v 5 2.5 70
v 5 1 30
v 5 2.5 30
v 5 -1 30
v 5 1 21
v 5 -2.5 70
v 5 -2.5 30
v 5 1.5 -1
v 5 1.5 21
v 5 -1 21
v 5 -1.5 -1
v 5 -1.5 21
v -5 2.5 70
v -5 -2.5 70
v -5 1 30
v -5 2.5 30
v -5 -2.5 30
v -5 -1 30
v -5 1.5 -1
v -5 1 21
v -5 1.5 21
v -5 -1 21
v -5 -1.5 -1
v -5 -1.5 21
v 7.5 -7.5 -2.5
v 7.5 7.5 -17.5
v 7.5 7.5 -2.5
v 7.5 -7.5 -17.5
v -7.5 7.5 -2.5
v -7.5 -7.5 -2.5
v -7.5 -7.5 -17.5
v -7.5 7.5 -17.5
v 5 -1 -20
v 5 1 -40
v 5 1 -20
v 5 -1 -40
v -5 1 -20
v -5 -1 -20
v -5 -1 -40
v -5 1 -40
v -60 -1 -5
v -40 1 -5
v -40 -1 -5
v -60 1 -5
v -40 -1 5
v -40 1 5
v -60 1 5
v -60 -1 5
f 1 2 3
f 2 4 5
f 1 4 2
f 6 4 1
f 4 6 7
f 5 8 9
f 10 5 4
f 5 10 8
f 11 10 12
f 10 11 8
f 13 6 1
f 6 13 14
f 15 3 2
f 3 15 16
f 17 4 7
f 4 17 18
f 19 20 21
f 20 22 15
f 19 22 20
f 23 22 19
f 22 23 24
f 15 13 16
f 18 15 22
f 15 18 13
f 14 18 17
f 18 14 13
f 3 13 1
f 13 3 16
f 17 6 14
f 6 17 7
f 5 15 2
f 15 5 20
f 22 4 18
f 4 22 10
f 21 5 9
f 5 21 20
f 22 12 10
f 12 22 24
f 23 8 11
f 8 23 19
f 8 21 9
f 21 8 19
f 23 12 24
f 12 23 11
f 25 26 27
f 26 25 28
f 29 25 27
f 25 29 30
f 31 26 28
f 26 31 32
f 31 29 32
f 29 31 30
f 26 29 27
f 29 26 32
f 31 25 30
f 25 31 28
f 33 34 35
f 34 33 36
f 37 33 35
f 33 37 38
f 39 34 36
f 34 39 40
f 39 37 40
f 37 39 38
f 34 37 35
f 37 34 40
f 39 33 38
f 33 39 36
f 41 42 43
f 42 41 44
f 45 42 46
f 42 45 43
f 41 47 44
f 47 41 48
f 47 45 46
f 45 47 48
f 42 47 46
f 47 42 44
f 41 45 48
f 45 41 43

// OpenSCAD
// Define dimensions for each component
module elongated_block() {
    cube([10, 5, 40], center = true); // Increased thickness
}

module rectangular_block_4() {
    cube([10, 2, 25], center = true); // Adjusted elongation
}

module rectangular_block_3() {
    cube([10, 3, 22], center = true); // Adjusted thickness
}

module cube_1() {
    cube([15, 15, 15], center = true); // Increased size
}

module rectangular_block_2() {
    cube([10, 2, 20], center = true);
}

module rectangular_block_1() {
    cube([10, 2, 20], center = true); // Adjusted thickness and elongation
}

// Assemble the model based on the positional relationship
module flexible_coupling() {
    // Layer 1: elongated_block
    translate([0, 0, 50]) elongated_block(); // Lowered position
    
    // Layer 2: rectangular_block_4
    translate([0, 0, 30]) rectangular_block_4(); // Adjusted position
    
    // Layer 3: rectangular_block_3
    translate([0, 0, 10]) rectangular_block_3(); // Adjusted position
    
    // Layer 4: cube_1
    translate([0, 0, -10]) cube_1(); // Lowered position
    
    // Layer 5: rectangular_block_2
    rotate([0, 0, 0]) translate([0, 0, -30]) rectangular_block_2(); // Lowered position
    
    // Layer 6: rectangular_block_1
    rotate([0, 90, 0]) translate([0, 0, -50]) rectangular_block_1(); // Adjusted orientation and position
}

// Render the model
flexible_coupling();
